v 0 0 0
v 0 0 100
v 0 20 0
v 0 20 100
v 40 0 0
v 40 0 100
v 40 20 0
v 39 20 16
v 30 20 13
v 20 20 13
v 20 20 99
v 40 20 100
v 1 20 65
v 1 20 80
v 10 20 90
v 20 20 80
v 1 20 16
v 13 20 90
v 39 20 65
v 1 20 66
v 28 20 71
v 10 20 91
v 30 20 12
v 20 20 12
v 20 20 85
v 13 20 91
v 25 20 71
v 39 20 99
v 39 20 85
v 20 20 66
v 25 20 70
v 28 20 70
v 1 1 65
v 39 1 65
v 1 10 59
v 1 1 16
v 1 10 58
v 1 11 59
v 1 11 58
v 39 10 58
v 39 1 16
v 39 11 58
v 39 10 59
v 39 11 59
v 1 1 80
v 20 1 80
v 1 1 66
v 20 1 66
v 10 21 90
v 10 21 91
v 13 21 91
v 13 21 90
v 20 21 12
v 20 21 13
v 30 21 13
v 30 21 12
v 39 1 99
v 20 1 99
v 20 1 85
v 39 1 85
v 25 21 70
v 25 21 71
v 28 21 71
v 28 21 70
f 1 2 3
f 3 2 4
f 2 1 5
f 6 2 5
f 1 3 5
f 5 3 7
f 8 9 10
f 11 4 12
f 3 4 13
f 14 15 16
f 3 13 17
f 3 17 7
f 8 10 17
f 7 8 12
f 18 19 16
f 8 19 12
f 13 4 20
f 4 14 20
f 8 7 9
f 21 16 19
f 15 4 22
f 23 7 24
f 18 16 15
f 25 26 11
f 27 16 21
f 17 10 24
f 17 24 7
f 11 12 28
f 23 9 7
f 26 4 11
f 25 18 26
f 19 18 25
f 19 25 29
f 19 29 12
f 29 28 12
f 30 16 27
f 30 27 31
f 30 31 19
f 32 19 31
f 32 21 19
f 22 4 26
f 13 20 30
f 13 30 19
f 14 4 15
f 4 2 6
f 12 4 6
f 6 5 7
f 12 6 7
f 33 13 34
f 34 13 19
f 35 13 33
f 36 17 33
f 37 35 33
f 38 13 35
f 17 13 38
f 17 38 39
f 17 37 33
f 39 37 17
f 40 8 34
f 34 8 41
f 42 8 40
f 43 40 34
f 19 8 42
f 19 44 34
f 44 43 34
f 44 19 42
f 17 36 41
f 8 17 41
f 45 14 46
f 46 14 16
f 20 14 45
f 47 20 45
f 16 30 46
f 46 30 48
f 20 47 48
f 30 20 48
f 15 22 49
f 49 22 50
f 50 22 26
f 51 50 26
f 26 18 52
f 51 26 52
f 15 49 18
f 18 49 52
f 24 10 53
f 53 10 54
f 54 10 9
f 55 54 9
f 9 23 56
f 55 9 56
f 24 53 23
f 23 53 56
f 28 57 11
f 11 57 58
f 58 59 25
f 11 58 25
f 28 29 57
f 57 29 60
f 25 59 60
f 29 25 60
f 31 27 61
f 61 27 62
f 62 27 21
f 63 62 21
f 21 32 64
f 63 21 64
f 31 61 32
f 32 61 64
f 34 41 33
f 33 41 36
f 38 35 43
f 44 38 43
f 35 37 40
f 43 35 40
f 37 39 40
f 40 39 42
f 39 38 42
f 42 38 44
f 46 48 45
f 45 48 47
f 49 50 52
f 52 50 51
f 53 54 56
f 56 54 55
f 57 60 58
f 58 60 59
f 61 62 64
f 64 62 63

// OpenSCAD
difference(){
cube ([40,20,100]);
translate([1,1,1]) cube([38,19,98]);
}
translate([0,0,80]) cube([40,20,1]);
translate([0,0,65]) cube([40,20,1]);
translate([0,0,1]) cube([40,20,15]);

translate([20,0,12]) cube([10,21,1]);
  
translate([0,10,58]) cube([40,1,1]);
translate([0,0,80]) cube([20,20,20]);
translate([20,0,65]) cube([20,20,20]);
translate([10,0,90]) cube([3,21,1]);
translate([25,0,70]) cube([3,21,1]);
